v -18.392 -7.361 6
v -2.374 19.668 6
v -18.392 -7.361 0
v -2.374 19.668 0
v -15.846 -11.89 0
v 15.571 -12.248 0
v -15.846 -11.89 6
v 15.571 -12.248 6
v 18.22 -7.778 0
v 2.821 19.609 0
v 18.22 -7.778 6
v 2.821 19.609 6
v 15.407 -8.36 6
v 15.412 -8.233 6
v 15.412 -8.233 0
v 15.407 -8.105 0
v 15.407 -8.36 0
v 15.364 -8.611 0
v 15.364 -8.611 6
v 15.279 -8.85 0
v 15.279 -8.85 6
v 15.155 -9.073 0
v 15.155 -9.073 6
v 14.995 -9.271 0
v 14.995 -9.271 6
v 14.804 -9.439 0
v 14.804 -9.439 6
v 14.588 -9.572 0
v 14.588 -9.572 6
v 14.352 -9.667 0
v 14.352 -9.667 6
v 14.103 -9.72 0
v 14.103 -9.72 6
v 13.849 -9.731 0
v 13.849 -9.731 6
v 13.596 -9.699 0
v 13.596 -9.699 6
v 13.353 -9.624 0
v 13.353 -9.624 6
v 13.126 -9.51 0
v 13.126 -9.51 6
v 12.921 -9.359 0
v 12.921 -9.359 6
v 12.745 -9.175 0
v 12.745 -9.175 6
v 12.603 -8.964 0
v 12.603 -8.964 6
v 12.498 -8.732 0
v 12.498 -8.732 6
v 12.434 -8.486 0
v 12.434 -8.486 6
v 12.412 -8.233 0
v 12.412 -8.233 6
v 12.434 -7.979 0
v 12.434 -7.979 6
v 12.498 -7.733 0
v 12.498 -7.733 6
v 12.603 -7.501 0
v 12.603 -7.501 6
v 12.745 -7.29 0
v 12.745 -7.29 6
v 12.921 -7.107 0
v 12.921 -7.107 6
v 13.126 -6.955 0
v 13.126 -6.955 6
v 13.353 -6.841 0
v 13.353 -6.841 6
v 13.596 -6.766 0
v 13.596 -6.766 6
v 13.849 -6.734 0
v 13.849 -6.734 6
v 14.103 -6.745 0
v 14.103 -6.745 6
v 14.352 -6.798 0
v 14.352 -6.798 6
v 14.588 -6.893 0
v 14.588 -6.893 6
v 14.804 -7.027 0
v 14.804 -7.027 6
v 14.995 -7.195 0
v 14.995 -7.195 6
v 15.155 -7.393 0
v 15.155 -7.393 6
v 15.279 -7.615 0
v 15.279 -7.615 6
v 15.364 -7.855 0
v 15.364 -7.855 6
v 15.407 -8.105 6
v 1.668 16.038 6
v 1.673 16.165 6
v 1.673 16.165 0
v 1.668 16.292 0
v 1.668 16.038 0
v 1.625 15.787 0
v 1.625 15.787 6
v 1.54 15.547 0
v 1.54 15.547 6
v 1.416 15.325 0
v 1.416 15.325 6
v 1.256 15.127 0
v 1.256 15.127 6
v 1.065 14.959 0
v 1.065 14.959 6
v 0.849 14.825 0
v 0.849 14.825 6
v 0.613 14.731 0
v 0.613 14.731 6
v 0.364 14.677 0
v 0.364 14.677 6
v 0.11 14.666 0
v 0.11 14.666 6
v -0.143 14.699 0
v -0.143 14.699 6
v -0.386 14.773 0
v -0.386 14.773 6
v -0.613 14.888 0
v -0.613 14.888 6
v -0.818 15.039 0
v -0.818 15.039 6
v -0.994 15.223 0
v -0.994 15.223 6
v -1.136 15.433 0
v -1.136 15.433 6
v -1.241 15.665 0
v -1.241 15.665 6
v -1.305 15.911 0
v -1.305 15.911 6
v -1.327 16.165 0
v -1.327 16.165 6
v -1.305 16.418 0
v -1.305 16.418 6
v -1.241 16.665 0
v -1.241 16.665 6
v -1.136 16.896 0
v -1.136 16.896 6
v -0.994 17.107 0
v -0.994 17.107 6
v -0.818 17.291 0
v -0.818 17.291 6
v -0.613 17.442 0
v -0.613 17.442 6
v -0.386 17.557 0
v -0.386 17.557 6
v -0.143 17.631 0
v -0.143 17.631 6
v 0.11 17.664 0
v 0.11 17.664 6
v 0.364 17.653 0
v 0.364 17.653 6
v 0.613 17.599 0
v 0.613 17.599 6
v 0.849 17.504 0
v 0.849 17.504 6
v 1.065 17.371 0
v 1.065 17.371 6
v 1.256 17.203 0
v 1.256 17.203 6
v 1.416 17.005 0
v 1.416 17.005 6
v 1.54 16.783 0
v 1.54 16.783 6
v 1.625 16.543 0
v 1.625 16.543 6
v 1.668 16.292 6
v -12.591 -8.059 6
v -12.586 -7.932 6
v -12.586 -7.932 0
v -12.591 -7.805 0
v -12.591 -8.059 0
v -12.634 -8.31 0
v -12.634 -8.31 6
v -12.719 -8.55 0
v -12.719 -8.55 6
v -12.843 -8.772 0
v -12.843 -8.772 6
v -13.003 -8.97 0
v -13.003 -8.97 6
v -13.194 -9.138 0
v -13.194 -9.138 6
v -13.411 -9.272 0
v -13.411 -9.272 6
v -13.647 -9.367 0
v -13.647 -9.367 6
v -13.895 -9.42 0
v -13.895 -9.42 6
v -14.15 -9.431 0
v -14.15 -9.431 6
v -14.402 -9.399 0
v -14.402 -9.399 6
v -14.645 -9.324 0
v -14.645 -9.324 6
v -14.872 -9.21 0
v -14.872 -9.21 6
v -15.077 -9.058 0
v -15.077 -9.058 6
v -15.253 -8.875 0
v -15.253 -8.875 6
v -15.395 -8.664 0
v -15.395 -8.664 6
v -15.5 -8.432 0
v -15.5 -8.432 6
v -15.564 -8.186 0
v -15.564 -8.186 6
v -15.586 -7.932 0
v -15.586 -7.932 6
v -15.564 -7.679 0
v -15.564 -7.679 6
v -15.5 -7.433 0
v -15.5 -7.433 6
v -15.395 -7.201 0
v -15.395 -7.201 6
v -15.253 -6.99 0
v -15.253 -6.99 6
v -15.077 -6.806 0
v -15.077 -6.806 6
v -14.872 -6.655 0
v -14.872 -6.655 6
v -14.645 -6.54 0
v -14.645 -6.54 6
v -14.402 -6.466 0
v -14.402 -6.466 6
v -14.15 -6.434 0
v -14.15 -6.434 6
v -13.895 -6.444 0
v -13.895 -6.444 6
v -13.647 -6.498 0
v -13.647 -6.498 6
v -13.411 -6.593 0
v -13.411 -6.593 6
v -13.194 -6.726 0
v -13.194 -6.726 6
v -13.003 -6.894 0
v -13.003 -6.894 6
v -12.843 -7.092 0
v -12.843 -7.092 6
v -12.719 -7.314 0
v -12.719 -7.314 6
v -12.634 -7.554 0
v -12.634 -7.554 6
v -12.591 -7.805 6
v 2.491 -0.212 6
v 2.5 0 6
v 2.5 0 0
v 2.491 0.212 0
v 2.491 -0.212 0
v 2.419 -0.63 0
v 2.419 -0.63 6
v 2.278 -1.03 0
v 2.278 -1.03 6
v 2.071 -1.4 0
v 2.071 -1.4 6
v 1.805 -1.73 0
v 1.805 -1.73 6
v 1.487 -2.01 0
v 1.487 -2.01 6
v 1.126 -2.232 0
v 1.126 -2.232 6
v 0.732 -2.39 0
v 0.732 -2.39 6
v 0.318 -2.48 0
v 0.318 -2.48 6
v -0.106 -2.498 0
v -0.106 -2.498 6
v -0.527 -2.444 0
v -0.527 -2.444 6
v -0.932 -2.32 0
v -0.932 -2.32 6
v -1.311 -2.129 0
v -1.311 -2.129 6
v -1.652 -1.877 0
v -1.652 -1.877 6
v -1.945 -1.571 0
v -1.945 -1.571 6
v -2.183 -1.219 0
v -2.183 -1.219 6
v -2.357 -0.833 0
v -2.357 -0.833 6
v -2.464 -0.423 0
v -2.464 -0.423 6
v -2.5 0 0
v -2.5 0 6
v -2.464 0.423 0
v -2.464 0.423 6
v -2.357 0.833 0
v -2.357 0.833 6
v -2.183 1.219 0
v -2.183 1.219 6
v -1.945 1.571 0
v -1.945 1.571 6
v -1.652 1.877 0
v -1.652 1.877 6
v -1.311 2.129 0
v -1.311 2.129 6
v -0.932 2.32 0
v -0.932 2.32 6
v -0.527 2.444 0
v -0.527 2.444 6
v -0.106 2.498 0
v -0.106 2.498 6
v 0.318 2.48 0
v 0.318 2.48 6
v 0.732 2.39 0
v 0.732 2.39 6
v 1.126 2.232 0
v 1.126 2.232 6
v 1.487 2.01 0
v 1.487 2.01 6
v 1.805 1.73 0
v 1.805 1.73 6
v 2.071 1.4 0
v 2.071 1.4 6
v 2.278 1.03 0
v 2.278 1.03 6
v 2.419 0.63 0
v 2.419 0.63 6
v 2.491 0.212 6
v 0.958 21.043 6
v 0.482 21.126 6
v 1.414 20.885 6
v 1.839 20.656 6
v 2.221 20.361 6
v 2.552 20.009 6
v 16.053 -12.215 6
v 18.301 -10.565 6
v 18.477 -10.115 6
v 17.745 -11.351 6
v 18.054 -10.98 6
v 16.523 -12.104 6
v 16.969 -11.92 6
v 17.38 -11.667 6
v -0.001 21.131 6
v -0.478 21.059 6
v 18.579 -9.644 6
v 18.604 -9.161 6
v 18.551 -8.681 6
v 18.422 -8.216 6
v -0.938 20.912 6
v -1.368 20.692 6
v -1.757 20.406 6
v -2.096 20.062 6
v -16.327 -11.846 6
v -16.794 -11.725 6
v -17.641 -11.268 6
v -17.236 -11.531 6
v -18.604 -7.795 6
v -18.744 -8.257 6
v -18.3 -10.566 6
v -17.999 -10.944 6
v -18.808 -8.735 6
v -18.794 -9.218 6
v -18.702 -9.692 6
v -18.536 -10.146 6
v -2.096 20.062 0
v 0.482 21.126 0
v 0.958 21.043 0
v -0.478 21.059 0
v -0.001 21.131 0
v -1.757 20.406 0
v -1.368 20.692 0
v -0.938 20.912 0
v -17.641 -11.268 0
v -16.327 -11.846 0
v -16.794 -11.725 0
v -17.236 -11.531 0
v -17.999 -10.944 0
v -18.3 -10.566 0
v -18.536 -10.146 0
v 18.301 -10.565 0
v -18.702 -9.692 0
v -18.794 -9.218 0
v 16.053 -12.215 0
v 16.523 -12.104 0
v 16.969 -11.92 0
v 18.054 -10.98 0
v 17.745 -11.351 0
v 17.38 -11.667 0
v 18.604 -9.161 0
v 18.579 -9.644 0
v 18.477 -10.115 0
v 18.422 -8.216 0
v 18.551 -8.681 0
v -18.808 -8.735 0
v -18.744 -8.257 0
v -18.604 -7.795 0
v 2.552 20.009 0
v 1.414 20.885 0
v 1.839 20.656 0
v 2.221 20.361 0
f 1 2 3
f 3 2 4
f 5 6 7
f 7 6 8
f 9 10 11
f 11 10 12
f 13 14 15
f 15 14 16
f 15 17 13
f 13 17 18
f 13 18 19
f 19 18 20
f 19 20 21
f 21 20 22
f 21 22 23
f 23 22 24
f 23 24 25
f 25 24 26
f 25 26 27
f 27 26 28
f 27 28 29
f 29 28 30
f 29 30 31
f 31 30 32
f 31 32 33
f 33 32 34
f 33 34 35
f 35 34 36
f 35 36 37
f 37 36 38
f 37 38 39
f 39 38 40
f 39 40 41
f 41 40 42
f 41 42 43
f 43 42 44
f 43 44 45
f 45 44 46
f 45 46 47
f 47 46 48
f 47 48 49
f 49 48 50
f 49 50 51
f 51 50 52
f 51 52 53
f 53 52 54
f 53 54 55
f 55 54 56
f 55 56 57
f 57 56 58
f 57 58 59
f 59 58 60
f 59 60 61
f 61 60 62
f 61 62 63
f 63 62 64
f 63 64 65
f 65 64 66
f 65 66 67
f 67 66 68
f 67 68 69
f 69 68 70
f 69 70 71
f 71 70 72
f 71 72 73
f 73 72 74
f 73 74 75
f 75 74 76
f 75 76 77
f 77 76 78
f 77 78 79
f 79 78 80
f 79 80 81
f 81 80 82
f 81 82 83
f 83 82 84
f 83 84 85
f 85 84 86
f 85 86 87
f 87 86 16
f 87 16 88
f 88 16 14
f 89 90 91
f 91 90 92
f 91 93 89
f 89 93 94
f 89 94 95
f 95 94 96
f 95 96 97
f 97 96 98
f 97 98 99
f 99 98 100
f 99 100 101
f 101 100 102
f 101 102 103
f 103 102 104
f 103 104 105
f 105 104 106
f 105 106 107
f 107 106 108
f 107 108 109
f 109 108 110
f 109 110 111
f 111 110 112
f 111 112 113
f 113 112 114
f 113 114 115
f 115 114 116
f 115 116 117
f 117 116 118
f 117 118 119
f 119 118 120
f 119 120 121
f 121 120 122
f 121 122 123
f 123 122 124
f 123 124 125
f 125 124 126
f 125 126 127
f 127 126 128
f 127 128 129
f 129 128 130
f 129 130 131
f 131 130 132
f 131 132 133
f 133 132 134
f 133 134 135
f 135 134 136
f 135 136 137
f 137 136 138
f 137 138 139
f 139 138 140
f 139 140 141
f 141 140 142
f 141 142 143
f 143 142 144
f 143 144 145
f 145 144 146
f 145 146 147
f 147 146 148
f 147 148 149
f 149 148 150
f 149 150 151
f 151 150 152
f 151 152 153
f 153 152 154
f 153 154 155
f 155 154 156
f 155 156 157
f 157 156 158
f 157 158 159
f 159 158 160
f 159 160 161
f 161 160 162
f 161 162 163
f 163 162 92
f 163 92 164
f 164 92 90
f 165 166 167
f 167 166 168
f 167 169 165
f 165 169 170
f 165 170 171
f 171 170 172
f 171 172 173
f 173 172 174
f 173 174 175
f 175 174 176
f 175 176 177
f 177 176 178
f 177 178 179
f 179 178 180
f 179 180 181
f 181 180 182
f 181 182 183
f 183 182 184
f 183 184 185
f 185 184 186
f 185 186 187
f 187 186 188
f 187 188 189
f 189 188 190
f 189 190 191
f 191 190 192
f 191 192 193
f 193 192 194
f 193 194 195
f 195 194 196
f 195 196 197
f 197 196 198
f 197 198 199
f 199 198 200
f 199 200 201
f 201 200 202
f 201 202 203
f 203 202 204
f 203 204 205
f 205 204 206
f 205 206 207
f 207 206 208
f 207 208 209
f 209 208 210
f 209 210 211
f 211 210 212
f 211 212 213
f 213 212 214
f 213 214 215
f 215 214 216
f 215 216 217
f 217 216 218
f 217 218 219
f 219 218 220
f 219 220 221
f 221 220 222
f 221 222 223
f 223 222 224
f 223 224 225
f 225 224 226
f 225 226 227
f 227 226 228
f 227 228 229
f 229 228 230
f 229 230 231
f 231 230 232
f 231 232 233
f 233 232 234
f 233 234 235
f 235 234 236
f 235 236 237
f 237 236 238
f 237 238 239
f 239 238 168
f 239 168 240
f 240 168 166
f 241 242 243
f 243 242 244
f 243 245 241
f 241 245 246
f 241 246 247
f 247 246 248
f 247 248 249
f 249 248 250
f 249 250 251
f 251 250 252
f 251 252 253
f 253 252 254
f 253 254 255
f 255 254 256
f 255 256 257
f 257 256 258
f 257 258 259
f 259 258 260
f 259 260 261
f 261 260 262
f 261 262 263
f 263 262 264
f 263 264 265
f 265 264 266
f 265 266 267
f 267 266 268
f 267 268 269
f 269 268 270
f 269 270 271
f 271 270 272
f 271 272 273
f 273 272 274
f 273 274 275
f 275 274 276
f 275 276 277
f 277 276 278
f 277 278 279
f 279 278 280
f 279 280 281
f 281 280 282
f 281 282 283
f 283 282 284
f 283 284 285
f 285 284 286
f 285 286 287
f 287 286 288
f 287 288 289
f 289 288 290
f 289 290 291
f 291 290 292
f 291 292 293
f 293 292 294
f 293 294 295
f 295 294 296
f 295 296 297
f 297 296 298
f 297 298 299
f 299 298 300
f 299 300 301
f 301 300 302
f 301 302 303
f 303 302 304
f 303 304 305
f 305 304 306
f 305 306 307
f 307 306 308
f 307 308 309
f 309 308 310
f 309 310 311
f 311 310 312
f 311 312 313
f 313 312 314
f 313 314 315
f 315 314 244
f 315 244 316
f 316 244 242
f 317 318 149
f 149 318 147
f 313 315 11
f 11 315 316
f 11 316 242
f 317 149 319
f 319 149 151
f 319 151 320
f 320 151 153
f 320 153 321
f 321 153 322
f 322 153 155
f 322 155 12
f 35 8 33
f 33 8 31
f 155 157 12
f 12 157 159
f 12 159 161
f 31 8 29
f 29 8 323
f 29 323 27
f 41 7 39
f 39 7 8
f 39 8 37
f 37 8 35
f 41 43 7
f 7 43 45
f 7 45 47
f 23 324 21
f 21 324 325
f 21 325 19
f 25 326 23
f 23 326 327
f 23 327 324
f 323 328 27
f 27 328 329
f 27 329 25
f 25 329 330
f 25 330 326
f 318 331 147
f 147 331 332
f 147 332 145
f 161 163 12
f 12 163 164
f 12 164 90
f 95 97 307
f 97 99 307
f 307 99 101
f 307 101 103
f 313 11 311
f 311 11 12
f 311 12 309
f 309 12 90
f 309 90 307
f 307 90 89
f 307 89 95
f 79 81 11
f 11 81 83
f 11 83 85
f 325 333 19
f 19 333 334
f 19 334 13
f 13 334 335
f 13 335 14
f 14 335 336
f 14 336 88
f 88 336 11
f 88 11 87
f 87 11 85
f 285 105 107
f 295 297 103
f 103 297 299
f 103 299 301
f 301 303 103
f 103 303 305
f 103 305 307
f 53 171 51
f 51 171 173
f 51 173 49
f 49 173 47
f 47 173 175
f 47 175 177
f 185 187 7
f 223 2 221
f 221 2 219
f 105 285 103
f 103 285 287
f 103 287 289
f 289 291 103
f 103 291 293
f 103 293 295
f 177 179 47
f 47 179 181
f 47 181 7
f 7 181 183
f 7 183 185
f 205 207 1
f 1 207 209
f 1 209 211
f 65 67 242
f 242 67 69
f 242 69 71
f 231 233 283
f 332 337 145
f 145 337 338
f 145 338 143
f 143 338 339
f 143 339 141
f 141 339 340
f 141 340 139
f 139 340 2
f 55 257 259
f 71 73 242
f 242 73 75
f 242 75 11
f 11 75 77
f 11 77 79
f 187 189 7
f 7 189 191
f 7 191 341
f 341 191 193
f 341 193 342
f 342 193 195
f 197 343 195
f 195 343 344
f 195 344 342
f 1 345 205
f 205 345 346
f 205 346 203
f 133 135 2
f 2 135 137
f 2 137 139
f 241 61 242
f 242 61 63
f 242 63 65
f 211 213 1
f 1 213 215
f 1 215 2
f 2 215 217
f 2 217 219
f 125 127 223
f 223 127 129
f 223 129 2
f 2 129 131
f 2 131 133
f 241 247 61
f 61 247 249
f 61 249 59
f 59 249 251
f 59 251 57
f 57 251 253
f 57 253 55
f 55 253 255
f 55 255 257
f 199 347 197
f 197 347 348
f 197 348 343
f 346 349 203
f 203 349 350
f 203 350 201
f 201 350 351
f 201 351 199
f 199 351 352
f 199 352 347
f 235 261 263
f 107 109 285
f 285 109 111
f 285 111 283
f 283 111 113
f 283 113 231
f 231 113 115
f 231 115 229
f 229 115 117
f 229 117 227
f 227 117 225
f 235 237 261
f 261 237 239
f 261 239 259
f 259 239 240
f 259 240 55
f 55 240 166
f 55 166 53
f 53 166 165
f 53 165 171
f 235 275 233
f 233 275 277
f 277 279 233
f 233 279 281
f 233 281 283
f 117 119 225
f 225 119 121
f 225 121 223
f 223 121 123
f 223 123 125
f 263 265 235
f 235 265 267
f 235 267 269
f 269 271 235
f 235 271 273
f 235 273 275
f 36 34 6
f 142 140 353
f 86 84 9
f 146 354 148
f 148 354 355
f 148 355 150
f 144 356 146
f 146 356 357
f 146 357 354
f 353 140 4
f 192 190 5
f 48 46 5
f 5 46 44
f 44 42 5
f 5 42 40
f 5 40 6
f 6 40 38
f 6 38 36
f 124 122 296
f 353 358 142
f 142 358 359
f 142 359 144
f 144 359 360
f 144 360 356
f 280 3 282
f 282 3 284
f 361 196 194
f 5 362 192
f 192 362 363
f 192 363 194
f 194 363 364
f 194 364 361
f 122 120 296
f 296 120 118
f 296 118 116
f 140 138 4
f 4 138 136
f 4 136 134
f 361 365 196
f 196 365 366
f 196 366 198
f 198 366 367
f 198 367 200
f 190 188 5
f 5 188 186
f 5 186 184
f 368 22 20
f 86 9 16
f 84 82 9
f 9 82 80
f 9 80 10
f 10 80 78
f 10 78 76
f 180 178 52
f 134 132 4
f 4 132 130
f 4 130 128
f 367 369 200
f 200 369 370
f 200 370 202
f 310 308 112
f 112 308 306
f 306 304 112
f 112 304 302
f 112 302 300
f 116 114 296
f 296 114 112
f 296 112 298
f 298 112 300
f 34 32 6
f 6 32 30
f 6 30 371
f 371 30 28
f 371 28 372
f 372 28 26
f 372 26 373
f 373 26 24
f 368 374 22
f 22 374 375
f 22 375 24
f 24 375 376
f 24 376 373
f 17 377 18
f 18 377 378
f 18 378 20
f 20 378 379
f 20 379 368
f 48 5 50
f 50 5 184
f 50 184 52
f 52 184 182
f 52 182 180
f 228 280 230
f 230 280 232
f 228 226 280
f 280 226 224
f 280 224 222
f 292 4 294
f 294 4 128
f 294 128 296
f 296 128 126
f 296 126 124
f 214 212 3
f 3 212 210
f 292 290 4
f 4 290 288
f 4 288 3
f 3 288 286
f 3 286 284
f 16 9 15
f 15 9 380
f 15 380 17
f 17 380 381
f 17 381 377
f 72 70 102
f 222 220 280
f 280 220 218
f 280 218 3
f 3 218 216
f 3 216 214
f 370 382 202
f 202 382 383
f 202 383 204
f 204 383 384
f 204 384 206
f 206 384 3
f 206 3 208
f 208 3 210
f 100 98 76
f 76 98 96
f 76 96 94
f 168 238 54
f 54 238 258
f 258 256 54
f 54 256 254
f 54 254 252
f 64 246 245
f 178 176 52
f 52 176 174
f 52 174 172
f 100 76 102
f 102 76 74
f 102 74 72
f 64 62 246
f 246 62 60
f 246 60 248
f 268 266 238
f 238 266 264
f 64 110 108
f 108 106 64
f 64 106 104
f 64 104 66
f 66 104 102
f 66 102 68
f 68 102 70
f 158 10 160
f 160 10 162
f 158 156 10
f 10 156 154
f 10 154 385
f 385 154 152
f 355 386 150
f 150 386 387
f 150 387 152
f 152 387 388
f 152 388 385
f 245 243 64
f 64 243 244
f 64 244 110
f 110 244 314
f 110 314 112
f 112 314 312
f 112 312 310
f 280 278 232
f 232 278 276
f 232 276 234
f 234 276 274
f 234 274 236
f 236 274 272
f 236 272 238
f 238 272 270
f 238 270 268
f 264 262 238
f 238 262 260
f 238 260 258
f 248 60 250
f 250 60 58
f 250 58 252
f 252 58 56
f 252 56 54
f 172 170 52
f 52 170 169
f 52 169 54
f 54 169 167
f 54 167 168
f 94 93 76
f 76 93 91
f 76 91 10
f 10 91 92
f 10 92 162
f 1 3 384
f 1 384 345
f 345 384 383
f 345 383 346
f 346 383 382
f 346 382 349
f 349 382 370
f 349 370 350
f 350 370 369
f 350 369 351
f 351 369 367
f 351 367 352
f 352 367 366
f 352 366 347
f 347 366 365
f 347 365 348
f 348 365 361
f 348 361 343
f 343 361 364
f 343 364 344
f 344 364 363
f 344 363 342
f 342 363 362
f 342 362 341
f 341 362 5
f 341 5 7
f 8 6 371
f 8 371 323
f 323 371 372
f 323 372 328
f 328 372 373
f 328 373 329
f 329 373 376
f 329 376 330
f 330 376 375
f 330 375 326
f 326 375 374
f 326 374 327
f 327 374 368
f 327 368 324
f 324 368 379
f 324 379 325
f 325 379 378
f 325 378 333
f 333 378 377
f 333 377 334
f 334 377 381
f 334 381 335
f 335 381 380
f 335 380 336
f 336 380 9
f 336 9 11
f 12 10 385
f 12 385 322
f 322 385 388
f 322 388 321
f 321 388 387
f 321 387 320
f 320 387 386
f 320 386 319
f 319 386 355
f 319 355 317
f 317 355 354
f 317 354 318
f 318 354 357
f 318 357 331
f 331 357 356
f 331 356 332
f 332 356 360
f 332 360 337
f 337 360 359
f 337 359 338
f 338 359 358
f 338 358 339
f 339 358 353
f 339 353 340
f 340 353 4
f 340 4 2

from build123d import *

# Parameters (mm, degrees)
SKETCH1_R           = 1.5
SKETCH1_R_2         = 2.5
BOSS_EXTRUDE2_DEPTH = 6
FILLET1_R           = 3


with BuildPart() as part:
    # Sketch1 → Boss-Extrude2 (new body)
    with BuildSketch(Plane.XY):
        Polygon((20.766769668, -12.307033049), (0.274818432, 24.138066612), (-21.0415881, -11.831033562), align=None)
        with Locations((0.173413232, 16.164877395)):
            Circle(SKETCH1_R, mode=Mode.SUBTRACT)
        with Locations((13.912487857, -8.232618961)):
            Circle(SKETCH1_R, mode=Mode.SUBTRACT)
        with Locations((-14.085901089, -7.932258433)):
            Circle(SKETCH1_R, mode=Mode.SUBTRACT)
        Circle(SKETCH1_R_2, mode=Mode.SUBTRACT)
    extrude(amount=BOSS_EXTRUDE2_DEPTH)

    # Fillet1
    fillet1_edges = [part.edges().sort_by_distance(p)[0] for p in [
        (0.274818432, 24.138066612, 3),
        (20.766769668, -12.307033049, 3),
        (-21.0415881, -11.831033562, 3),
    ]]
    fillet(fillet1_edges, radius=FILLET1_R)


solid = part.part
